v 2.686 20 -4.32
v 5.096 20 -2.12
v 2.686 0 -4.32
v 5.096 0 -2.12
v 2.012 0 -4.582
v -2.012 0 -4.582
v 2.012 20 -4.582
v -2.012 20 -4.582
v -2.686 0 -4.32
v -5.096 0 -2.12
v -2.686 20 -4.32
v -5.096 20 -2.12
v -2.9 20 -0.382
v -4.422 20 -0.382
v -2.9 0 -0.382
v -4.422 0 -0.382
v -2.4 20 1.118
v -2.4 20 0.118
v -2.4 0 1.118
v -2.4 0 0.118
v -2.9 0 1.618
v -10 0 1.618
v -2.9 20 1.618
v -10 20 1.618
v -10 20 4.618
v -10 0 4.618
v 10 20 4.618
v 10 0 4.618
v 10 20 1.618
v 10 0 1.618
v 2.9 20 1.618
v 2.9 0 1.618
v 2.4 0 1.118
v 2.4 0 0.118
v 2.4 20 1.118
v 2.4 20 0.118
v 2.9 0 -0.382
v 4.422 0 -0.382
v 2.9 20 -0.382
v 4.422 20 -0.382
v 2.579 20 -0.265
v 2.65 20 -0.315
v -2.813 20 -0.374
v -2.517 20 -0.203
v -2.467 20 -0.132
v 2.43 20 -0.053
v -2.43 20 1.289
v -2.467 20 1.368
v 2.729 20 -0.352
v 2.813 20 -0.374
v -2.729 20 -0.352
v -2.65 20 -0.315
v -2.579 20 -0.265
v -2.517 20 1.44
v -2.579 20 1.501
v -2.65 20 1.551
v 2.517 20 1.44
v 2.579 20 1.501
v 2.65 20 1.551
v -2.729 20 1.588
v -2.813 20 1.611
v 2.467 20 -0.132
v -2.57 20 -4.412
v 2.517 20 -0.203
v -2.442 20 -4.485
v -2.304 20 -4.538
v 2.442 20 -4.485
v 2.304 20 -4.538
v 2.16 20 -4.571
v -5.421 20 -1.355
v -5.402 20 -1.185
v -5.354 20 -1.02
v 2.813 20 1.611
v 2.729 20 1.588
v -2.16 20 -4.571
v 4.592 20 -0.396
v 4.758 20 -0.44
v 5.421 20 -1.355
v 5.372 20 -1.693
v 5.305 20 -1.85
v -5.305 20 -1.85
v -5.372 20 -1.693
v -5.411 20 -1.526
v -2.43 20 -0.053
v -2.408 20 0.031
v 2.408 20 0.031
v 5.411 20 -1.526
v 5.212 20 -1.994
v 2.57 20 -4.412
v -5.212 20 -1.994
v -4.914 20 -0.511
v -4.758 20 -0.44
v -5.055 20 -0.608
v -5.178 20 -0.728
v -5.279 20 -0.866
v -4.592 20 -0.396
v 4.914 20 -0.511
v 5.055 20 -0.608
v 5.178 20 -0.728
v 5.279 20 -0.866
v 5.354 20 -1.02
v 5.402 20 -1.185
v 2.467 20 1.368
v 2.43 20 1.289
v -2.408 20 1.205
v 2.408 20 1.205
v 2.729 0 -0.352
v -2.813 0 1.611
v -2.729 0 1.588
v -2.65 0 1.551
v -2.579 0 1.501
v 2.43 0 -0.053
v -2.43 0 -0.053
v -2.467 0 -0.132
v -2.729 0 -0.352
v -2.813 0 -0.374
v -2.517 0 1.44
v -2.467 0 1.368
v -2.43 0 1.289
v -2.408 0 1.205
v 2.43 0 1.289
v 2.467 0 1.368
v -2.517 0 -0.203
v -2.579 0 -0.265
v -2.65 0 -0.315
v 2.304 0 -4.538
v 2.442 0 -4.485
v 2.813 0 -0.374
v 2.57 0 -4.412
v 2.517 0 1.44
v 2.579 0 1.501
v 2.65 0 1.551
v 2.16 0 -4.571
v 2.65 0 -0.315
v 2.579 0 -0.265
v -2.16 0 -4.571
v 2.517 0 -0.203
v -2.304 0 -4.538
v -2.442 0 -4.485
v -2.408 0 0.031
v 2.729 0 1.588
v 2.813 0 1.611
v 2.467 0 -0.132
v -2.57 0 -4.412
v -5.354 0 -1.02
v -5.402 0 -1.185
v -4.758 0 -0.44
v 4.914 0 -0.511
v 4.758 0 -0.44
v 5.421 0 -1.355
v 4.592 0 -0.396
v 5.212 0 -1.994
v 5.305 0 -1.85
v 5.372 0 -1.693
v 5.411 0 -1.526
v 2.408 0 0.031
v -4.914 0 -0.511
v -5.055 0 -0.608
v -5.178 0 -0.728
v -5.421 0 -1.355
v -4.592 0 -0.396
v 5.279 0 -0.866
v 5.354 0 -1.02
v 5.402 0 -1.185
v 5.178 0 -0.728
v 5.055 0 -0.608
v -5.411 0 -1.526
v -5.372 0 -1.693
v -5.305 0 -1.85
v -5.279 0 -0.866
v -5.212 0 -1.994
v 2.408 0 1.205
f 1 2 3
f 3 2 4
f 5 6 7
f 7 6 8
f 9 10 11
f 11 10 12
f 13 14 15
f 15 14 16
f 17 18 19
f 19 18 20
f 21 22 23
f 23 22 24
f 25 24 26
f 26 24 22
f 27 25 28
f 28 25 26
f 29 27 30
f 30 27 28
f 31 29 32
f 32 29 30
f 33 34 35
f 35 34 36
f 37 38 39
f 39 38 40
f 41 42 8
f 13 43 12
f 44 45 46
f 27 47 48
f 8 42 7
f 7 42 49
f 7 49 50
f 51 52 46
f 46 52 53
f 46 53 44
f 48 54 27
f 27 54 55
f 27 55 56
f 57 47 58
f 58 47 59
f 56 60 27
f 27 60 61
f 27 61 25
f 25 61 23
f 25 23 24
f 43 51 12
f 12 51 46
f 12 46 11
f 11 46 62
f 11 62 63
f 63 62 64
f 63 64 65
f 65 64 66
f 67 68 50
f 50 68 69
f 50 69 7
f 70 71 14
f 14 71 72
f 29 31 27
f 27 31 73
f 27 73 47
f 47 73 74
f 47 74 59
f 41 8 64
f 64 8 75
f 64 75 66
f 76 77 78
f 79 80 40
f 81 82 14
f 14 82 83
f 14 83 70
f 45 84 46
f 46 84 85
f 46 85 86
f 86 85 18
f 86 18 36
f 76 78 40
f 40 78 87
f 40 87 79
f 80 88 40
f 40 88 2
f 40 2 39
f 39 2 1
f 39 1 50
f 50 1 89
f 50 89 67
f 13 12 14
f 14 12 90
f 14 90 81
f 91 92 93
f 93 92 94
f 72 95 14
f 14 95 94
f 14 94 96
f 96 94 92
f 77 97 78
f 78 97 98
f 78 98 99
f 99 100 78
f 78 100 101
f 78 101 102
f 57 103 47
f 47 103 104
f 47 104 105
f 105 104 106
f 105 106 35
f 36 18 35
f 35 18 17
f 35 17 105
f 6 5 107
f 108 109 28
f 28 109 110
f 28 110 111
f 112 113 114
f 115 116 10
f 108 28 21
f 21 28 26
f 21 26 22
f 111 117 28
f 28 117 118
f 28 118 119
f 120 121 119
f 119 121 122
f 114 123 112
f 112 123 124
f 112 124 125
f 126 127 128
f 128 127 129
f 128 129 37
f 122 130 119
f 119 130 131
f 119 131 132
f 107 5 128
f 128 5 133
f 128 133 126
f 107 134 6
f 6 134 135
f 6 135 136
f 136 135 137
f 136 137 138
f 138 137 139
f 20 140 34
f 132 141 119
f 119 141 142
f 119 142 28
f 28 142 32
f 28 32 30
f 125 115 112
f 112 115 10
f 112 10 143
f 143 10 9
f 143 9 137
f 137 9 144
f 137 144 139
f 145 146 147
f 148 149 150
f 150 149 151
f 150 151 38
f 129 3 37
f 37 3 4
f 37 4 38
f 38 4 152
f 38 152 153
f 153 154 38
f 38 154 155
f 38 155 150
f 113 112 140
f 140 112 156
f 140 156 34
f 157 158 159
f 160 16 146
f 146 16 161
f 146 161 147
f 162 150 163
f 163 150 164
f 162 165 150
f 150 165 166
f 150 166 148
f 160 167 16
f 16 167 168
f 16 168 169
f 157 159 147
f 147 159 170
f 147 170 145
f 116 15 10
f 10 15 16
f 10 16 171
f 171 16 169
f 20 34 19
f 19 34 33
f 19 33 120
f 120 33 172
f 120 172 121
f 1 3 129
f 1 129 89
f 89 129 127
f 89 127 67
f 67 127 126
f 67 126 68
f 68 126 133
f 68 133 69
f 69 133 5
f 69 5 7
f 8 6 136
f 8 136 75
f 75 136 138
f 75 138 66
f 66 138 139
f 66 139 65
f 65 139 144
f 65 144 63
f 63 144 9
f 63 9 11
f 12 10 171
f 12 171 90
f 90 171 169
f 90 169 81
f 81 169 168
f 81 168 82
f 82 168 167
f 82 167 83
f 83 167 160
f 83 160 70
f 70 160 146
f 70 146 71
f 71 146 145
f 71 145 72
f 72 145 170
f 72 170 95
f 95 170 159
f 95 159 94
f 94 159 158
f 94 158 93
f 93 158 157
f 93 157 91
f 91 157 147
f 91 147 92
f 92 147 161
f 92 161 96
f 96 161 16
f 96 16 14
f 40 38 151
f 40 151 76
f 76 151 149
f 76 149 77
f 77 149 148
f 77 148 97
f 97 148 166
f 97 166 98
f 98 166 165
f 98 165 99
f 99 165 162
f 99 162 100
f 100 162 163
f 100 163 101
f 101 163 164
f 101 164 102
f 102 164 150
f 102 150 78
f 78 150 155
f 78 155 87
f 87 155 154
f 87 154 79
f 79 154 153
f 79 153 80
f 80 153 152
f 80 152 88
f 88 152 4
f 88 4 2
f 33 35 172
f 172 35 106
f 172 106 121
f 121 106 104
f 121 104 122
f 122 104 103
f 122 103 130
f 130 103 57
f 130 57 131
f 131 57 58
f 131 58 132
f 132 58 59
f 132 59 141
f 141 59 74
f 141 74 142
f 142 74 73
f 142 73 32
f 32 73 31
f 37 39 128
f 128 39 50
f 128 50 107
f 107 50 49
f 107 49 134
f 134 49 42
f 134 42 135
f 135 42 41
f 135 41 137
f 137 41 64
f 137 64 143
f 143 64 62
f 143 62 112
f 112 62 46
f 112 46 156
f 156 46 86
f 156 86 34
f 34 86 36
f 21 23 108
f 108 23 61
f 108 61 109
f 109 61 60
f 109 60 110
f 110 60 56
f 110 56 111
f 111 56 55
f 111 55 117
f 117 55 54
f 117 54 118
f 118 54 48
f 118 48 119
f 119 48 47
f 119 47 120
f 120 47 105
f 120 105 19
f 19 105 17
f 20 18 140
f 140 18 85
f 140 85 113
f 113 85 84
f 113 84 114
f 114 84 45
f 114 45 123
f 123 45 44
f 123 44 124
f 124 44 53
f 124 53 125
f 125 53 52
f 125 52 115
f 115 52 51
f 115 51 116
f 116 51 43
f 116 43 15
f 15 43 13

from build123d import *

# Parameters (mm, degrees)
BOSS_EXTRUDE1_DEPTH = 20
FILLET1_R           = 1
FILLET2_R           = 0.5


with BuildPart() as part:
    # Sketch1 → Boss-Extrude1 (new body)
    with BuildSketch(Plane(origin=(0, 0, 0), x_dir=(1, 0, 0), z_dir=(0, 1, 0))):
        Polygon((-2.4, 4.581818182), (2.4, 4.581818182), (7, 0.381818182), (2.4, 0.381818182), (2.4, -1.618181818), (10, -1.618181818), (10, -4.618181818), (-10, -4.618181818), (-10, -1.618181818), (-2.4, -1.618181818), (-2.4, 0.381818182), (-7, 0.381818182), align=None)
    extrude(amount=BOSS_EXTRUDE1_DEPTH)

    # Fillet1
    fillet1_edges = [part.edges().sort_by_distance(p)[0] for p in [
        (7, 10, -0.381818182),
        (-7, 10, -0.381818182),
        (-2.4, 10, -4.581818182),
        (2.4, 10, -4.581818182),
    ]]
    fillet(fillet1_edges, radius=FILLET1_R)

    # Fillet2
    fillet2_edges = [part.edges().sort_by_distance(p)[0] for p in [
        (2.4, 10, -0.381818182),
        (2.4, 10, 1.618181818),
        (-2.4, 10, 1.618181818),
        (-2.4, 10, -0.381818182),
    ]]
    fillet(fillet2_edges, radius=FILLET2_R)


solid = part.part
